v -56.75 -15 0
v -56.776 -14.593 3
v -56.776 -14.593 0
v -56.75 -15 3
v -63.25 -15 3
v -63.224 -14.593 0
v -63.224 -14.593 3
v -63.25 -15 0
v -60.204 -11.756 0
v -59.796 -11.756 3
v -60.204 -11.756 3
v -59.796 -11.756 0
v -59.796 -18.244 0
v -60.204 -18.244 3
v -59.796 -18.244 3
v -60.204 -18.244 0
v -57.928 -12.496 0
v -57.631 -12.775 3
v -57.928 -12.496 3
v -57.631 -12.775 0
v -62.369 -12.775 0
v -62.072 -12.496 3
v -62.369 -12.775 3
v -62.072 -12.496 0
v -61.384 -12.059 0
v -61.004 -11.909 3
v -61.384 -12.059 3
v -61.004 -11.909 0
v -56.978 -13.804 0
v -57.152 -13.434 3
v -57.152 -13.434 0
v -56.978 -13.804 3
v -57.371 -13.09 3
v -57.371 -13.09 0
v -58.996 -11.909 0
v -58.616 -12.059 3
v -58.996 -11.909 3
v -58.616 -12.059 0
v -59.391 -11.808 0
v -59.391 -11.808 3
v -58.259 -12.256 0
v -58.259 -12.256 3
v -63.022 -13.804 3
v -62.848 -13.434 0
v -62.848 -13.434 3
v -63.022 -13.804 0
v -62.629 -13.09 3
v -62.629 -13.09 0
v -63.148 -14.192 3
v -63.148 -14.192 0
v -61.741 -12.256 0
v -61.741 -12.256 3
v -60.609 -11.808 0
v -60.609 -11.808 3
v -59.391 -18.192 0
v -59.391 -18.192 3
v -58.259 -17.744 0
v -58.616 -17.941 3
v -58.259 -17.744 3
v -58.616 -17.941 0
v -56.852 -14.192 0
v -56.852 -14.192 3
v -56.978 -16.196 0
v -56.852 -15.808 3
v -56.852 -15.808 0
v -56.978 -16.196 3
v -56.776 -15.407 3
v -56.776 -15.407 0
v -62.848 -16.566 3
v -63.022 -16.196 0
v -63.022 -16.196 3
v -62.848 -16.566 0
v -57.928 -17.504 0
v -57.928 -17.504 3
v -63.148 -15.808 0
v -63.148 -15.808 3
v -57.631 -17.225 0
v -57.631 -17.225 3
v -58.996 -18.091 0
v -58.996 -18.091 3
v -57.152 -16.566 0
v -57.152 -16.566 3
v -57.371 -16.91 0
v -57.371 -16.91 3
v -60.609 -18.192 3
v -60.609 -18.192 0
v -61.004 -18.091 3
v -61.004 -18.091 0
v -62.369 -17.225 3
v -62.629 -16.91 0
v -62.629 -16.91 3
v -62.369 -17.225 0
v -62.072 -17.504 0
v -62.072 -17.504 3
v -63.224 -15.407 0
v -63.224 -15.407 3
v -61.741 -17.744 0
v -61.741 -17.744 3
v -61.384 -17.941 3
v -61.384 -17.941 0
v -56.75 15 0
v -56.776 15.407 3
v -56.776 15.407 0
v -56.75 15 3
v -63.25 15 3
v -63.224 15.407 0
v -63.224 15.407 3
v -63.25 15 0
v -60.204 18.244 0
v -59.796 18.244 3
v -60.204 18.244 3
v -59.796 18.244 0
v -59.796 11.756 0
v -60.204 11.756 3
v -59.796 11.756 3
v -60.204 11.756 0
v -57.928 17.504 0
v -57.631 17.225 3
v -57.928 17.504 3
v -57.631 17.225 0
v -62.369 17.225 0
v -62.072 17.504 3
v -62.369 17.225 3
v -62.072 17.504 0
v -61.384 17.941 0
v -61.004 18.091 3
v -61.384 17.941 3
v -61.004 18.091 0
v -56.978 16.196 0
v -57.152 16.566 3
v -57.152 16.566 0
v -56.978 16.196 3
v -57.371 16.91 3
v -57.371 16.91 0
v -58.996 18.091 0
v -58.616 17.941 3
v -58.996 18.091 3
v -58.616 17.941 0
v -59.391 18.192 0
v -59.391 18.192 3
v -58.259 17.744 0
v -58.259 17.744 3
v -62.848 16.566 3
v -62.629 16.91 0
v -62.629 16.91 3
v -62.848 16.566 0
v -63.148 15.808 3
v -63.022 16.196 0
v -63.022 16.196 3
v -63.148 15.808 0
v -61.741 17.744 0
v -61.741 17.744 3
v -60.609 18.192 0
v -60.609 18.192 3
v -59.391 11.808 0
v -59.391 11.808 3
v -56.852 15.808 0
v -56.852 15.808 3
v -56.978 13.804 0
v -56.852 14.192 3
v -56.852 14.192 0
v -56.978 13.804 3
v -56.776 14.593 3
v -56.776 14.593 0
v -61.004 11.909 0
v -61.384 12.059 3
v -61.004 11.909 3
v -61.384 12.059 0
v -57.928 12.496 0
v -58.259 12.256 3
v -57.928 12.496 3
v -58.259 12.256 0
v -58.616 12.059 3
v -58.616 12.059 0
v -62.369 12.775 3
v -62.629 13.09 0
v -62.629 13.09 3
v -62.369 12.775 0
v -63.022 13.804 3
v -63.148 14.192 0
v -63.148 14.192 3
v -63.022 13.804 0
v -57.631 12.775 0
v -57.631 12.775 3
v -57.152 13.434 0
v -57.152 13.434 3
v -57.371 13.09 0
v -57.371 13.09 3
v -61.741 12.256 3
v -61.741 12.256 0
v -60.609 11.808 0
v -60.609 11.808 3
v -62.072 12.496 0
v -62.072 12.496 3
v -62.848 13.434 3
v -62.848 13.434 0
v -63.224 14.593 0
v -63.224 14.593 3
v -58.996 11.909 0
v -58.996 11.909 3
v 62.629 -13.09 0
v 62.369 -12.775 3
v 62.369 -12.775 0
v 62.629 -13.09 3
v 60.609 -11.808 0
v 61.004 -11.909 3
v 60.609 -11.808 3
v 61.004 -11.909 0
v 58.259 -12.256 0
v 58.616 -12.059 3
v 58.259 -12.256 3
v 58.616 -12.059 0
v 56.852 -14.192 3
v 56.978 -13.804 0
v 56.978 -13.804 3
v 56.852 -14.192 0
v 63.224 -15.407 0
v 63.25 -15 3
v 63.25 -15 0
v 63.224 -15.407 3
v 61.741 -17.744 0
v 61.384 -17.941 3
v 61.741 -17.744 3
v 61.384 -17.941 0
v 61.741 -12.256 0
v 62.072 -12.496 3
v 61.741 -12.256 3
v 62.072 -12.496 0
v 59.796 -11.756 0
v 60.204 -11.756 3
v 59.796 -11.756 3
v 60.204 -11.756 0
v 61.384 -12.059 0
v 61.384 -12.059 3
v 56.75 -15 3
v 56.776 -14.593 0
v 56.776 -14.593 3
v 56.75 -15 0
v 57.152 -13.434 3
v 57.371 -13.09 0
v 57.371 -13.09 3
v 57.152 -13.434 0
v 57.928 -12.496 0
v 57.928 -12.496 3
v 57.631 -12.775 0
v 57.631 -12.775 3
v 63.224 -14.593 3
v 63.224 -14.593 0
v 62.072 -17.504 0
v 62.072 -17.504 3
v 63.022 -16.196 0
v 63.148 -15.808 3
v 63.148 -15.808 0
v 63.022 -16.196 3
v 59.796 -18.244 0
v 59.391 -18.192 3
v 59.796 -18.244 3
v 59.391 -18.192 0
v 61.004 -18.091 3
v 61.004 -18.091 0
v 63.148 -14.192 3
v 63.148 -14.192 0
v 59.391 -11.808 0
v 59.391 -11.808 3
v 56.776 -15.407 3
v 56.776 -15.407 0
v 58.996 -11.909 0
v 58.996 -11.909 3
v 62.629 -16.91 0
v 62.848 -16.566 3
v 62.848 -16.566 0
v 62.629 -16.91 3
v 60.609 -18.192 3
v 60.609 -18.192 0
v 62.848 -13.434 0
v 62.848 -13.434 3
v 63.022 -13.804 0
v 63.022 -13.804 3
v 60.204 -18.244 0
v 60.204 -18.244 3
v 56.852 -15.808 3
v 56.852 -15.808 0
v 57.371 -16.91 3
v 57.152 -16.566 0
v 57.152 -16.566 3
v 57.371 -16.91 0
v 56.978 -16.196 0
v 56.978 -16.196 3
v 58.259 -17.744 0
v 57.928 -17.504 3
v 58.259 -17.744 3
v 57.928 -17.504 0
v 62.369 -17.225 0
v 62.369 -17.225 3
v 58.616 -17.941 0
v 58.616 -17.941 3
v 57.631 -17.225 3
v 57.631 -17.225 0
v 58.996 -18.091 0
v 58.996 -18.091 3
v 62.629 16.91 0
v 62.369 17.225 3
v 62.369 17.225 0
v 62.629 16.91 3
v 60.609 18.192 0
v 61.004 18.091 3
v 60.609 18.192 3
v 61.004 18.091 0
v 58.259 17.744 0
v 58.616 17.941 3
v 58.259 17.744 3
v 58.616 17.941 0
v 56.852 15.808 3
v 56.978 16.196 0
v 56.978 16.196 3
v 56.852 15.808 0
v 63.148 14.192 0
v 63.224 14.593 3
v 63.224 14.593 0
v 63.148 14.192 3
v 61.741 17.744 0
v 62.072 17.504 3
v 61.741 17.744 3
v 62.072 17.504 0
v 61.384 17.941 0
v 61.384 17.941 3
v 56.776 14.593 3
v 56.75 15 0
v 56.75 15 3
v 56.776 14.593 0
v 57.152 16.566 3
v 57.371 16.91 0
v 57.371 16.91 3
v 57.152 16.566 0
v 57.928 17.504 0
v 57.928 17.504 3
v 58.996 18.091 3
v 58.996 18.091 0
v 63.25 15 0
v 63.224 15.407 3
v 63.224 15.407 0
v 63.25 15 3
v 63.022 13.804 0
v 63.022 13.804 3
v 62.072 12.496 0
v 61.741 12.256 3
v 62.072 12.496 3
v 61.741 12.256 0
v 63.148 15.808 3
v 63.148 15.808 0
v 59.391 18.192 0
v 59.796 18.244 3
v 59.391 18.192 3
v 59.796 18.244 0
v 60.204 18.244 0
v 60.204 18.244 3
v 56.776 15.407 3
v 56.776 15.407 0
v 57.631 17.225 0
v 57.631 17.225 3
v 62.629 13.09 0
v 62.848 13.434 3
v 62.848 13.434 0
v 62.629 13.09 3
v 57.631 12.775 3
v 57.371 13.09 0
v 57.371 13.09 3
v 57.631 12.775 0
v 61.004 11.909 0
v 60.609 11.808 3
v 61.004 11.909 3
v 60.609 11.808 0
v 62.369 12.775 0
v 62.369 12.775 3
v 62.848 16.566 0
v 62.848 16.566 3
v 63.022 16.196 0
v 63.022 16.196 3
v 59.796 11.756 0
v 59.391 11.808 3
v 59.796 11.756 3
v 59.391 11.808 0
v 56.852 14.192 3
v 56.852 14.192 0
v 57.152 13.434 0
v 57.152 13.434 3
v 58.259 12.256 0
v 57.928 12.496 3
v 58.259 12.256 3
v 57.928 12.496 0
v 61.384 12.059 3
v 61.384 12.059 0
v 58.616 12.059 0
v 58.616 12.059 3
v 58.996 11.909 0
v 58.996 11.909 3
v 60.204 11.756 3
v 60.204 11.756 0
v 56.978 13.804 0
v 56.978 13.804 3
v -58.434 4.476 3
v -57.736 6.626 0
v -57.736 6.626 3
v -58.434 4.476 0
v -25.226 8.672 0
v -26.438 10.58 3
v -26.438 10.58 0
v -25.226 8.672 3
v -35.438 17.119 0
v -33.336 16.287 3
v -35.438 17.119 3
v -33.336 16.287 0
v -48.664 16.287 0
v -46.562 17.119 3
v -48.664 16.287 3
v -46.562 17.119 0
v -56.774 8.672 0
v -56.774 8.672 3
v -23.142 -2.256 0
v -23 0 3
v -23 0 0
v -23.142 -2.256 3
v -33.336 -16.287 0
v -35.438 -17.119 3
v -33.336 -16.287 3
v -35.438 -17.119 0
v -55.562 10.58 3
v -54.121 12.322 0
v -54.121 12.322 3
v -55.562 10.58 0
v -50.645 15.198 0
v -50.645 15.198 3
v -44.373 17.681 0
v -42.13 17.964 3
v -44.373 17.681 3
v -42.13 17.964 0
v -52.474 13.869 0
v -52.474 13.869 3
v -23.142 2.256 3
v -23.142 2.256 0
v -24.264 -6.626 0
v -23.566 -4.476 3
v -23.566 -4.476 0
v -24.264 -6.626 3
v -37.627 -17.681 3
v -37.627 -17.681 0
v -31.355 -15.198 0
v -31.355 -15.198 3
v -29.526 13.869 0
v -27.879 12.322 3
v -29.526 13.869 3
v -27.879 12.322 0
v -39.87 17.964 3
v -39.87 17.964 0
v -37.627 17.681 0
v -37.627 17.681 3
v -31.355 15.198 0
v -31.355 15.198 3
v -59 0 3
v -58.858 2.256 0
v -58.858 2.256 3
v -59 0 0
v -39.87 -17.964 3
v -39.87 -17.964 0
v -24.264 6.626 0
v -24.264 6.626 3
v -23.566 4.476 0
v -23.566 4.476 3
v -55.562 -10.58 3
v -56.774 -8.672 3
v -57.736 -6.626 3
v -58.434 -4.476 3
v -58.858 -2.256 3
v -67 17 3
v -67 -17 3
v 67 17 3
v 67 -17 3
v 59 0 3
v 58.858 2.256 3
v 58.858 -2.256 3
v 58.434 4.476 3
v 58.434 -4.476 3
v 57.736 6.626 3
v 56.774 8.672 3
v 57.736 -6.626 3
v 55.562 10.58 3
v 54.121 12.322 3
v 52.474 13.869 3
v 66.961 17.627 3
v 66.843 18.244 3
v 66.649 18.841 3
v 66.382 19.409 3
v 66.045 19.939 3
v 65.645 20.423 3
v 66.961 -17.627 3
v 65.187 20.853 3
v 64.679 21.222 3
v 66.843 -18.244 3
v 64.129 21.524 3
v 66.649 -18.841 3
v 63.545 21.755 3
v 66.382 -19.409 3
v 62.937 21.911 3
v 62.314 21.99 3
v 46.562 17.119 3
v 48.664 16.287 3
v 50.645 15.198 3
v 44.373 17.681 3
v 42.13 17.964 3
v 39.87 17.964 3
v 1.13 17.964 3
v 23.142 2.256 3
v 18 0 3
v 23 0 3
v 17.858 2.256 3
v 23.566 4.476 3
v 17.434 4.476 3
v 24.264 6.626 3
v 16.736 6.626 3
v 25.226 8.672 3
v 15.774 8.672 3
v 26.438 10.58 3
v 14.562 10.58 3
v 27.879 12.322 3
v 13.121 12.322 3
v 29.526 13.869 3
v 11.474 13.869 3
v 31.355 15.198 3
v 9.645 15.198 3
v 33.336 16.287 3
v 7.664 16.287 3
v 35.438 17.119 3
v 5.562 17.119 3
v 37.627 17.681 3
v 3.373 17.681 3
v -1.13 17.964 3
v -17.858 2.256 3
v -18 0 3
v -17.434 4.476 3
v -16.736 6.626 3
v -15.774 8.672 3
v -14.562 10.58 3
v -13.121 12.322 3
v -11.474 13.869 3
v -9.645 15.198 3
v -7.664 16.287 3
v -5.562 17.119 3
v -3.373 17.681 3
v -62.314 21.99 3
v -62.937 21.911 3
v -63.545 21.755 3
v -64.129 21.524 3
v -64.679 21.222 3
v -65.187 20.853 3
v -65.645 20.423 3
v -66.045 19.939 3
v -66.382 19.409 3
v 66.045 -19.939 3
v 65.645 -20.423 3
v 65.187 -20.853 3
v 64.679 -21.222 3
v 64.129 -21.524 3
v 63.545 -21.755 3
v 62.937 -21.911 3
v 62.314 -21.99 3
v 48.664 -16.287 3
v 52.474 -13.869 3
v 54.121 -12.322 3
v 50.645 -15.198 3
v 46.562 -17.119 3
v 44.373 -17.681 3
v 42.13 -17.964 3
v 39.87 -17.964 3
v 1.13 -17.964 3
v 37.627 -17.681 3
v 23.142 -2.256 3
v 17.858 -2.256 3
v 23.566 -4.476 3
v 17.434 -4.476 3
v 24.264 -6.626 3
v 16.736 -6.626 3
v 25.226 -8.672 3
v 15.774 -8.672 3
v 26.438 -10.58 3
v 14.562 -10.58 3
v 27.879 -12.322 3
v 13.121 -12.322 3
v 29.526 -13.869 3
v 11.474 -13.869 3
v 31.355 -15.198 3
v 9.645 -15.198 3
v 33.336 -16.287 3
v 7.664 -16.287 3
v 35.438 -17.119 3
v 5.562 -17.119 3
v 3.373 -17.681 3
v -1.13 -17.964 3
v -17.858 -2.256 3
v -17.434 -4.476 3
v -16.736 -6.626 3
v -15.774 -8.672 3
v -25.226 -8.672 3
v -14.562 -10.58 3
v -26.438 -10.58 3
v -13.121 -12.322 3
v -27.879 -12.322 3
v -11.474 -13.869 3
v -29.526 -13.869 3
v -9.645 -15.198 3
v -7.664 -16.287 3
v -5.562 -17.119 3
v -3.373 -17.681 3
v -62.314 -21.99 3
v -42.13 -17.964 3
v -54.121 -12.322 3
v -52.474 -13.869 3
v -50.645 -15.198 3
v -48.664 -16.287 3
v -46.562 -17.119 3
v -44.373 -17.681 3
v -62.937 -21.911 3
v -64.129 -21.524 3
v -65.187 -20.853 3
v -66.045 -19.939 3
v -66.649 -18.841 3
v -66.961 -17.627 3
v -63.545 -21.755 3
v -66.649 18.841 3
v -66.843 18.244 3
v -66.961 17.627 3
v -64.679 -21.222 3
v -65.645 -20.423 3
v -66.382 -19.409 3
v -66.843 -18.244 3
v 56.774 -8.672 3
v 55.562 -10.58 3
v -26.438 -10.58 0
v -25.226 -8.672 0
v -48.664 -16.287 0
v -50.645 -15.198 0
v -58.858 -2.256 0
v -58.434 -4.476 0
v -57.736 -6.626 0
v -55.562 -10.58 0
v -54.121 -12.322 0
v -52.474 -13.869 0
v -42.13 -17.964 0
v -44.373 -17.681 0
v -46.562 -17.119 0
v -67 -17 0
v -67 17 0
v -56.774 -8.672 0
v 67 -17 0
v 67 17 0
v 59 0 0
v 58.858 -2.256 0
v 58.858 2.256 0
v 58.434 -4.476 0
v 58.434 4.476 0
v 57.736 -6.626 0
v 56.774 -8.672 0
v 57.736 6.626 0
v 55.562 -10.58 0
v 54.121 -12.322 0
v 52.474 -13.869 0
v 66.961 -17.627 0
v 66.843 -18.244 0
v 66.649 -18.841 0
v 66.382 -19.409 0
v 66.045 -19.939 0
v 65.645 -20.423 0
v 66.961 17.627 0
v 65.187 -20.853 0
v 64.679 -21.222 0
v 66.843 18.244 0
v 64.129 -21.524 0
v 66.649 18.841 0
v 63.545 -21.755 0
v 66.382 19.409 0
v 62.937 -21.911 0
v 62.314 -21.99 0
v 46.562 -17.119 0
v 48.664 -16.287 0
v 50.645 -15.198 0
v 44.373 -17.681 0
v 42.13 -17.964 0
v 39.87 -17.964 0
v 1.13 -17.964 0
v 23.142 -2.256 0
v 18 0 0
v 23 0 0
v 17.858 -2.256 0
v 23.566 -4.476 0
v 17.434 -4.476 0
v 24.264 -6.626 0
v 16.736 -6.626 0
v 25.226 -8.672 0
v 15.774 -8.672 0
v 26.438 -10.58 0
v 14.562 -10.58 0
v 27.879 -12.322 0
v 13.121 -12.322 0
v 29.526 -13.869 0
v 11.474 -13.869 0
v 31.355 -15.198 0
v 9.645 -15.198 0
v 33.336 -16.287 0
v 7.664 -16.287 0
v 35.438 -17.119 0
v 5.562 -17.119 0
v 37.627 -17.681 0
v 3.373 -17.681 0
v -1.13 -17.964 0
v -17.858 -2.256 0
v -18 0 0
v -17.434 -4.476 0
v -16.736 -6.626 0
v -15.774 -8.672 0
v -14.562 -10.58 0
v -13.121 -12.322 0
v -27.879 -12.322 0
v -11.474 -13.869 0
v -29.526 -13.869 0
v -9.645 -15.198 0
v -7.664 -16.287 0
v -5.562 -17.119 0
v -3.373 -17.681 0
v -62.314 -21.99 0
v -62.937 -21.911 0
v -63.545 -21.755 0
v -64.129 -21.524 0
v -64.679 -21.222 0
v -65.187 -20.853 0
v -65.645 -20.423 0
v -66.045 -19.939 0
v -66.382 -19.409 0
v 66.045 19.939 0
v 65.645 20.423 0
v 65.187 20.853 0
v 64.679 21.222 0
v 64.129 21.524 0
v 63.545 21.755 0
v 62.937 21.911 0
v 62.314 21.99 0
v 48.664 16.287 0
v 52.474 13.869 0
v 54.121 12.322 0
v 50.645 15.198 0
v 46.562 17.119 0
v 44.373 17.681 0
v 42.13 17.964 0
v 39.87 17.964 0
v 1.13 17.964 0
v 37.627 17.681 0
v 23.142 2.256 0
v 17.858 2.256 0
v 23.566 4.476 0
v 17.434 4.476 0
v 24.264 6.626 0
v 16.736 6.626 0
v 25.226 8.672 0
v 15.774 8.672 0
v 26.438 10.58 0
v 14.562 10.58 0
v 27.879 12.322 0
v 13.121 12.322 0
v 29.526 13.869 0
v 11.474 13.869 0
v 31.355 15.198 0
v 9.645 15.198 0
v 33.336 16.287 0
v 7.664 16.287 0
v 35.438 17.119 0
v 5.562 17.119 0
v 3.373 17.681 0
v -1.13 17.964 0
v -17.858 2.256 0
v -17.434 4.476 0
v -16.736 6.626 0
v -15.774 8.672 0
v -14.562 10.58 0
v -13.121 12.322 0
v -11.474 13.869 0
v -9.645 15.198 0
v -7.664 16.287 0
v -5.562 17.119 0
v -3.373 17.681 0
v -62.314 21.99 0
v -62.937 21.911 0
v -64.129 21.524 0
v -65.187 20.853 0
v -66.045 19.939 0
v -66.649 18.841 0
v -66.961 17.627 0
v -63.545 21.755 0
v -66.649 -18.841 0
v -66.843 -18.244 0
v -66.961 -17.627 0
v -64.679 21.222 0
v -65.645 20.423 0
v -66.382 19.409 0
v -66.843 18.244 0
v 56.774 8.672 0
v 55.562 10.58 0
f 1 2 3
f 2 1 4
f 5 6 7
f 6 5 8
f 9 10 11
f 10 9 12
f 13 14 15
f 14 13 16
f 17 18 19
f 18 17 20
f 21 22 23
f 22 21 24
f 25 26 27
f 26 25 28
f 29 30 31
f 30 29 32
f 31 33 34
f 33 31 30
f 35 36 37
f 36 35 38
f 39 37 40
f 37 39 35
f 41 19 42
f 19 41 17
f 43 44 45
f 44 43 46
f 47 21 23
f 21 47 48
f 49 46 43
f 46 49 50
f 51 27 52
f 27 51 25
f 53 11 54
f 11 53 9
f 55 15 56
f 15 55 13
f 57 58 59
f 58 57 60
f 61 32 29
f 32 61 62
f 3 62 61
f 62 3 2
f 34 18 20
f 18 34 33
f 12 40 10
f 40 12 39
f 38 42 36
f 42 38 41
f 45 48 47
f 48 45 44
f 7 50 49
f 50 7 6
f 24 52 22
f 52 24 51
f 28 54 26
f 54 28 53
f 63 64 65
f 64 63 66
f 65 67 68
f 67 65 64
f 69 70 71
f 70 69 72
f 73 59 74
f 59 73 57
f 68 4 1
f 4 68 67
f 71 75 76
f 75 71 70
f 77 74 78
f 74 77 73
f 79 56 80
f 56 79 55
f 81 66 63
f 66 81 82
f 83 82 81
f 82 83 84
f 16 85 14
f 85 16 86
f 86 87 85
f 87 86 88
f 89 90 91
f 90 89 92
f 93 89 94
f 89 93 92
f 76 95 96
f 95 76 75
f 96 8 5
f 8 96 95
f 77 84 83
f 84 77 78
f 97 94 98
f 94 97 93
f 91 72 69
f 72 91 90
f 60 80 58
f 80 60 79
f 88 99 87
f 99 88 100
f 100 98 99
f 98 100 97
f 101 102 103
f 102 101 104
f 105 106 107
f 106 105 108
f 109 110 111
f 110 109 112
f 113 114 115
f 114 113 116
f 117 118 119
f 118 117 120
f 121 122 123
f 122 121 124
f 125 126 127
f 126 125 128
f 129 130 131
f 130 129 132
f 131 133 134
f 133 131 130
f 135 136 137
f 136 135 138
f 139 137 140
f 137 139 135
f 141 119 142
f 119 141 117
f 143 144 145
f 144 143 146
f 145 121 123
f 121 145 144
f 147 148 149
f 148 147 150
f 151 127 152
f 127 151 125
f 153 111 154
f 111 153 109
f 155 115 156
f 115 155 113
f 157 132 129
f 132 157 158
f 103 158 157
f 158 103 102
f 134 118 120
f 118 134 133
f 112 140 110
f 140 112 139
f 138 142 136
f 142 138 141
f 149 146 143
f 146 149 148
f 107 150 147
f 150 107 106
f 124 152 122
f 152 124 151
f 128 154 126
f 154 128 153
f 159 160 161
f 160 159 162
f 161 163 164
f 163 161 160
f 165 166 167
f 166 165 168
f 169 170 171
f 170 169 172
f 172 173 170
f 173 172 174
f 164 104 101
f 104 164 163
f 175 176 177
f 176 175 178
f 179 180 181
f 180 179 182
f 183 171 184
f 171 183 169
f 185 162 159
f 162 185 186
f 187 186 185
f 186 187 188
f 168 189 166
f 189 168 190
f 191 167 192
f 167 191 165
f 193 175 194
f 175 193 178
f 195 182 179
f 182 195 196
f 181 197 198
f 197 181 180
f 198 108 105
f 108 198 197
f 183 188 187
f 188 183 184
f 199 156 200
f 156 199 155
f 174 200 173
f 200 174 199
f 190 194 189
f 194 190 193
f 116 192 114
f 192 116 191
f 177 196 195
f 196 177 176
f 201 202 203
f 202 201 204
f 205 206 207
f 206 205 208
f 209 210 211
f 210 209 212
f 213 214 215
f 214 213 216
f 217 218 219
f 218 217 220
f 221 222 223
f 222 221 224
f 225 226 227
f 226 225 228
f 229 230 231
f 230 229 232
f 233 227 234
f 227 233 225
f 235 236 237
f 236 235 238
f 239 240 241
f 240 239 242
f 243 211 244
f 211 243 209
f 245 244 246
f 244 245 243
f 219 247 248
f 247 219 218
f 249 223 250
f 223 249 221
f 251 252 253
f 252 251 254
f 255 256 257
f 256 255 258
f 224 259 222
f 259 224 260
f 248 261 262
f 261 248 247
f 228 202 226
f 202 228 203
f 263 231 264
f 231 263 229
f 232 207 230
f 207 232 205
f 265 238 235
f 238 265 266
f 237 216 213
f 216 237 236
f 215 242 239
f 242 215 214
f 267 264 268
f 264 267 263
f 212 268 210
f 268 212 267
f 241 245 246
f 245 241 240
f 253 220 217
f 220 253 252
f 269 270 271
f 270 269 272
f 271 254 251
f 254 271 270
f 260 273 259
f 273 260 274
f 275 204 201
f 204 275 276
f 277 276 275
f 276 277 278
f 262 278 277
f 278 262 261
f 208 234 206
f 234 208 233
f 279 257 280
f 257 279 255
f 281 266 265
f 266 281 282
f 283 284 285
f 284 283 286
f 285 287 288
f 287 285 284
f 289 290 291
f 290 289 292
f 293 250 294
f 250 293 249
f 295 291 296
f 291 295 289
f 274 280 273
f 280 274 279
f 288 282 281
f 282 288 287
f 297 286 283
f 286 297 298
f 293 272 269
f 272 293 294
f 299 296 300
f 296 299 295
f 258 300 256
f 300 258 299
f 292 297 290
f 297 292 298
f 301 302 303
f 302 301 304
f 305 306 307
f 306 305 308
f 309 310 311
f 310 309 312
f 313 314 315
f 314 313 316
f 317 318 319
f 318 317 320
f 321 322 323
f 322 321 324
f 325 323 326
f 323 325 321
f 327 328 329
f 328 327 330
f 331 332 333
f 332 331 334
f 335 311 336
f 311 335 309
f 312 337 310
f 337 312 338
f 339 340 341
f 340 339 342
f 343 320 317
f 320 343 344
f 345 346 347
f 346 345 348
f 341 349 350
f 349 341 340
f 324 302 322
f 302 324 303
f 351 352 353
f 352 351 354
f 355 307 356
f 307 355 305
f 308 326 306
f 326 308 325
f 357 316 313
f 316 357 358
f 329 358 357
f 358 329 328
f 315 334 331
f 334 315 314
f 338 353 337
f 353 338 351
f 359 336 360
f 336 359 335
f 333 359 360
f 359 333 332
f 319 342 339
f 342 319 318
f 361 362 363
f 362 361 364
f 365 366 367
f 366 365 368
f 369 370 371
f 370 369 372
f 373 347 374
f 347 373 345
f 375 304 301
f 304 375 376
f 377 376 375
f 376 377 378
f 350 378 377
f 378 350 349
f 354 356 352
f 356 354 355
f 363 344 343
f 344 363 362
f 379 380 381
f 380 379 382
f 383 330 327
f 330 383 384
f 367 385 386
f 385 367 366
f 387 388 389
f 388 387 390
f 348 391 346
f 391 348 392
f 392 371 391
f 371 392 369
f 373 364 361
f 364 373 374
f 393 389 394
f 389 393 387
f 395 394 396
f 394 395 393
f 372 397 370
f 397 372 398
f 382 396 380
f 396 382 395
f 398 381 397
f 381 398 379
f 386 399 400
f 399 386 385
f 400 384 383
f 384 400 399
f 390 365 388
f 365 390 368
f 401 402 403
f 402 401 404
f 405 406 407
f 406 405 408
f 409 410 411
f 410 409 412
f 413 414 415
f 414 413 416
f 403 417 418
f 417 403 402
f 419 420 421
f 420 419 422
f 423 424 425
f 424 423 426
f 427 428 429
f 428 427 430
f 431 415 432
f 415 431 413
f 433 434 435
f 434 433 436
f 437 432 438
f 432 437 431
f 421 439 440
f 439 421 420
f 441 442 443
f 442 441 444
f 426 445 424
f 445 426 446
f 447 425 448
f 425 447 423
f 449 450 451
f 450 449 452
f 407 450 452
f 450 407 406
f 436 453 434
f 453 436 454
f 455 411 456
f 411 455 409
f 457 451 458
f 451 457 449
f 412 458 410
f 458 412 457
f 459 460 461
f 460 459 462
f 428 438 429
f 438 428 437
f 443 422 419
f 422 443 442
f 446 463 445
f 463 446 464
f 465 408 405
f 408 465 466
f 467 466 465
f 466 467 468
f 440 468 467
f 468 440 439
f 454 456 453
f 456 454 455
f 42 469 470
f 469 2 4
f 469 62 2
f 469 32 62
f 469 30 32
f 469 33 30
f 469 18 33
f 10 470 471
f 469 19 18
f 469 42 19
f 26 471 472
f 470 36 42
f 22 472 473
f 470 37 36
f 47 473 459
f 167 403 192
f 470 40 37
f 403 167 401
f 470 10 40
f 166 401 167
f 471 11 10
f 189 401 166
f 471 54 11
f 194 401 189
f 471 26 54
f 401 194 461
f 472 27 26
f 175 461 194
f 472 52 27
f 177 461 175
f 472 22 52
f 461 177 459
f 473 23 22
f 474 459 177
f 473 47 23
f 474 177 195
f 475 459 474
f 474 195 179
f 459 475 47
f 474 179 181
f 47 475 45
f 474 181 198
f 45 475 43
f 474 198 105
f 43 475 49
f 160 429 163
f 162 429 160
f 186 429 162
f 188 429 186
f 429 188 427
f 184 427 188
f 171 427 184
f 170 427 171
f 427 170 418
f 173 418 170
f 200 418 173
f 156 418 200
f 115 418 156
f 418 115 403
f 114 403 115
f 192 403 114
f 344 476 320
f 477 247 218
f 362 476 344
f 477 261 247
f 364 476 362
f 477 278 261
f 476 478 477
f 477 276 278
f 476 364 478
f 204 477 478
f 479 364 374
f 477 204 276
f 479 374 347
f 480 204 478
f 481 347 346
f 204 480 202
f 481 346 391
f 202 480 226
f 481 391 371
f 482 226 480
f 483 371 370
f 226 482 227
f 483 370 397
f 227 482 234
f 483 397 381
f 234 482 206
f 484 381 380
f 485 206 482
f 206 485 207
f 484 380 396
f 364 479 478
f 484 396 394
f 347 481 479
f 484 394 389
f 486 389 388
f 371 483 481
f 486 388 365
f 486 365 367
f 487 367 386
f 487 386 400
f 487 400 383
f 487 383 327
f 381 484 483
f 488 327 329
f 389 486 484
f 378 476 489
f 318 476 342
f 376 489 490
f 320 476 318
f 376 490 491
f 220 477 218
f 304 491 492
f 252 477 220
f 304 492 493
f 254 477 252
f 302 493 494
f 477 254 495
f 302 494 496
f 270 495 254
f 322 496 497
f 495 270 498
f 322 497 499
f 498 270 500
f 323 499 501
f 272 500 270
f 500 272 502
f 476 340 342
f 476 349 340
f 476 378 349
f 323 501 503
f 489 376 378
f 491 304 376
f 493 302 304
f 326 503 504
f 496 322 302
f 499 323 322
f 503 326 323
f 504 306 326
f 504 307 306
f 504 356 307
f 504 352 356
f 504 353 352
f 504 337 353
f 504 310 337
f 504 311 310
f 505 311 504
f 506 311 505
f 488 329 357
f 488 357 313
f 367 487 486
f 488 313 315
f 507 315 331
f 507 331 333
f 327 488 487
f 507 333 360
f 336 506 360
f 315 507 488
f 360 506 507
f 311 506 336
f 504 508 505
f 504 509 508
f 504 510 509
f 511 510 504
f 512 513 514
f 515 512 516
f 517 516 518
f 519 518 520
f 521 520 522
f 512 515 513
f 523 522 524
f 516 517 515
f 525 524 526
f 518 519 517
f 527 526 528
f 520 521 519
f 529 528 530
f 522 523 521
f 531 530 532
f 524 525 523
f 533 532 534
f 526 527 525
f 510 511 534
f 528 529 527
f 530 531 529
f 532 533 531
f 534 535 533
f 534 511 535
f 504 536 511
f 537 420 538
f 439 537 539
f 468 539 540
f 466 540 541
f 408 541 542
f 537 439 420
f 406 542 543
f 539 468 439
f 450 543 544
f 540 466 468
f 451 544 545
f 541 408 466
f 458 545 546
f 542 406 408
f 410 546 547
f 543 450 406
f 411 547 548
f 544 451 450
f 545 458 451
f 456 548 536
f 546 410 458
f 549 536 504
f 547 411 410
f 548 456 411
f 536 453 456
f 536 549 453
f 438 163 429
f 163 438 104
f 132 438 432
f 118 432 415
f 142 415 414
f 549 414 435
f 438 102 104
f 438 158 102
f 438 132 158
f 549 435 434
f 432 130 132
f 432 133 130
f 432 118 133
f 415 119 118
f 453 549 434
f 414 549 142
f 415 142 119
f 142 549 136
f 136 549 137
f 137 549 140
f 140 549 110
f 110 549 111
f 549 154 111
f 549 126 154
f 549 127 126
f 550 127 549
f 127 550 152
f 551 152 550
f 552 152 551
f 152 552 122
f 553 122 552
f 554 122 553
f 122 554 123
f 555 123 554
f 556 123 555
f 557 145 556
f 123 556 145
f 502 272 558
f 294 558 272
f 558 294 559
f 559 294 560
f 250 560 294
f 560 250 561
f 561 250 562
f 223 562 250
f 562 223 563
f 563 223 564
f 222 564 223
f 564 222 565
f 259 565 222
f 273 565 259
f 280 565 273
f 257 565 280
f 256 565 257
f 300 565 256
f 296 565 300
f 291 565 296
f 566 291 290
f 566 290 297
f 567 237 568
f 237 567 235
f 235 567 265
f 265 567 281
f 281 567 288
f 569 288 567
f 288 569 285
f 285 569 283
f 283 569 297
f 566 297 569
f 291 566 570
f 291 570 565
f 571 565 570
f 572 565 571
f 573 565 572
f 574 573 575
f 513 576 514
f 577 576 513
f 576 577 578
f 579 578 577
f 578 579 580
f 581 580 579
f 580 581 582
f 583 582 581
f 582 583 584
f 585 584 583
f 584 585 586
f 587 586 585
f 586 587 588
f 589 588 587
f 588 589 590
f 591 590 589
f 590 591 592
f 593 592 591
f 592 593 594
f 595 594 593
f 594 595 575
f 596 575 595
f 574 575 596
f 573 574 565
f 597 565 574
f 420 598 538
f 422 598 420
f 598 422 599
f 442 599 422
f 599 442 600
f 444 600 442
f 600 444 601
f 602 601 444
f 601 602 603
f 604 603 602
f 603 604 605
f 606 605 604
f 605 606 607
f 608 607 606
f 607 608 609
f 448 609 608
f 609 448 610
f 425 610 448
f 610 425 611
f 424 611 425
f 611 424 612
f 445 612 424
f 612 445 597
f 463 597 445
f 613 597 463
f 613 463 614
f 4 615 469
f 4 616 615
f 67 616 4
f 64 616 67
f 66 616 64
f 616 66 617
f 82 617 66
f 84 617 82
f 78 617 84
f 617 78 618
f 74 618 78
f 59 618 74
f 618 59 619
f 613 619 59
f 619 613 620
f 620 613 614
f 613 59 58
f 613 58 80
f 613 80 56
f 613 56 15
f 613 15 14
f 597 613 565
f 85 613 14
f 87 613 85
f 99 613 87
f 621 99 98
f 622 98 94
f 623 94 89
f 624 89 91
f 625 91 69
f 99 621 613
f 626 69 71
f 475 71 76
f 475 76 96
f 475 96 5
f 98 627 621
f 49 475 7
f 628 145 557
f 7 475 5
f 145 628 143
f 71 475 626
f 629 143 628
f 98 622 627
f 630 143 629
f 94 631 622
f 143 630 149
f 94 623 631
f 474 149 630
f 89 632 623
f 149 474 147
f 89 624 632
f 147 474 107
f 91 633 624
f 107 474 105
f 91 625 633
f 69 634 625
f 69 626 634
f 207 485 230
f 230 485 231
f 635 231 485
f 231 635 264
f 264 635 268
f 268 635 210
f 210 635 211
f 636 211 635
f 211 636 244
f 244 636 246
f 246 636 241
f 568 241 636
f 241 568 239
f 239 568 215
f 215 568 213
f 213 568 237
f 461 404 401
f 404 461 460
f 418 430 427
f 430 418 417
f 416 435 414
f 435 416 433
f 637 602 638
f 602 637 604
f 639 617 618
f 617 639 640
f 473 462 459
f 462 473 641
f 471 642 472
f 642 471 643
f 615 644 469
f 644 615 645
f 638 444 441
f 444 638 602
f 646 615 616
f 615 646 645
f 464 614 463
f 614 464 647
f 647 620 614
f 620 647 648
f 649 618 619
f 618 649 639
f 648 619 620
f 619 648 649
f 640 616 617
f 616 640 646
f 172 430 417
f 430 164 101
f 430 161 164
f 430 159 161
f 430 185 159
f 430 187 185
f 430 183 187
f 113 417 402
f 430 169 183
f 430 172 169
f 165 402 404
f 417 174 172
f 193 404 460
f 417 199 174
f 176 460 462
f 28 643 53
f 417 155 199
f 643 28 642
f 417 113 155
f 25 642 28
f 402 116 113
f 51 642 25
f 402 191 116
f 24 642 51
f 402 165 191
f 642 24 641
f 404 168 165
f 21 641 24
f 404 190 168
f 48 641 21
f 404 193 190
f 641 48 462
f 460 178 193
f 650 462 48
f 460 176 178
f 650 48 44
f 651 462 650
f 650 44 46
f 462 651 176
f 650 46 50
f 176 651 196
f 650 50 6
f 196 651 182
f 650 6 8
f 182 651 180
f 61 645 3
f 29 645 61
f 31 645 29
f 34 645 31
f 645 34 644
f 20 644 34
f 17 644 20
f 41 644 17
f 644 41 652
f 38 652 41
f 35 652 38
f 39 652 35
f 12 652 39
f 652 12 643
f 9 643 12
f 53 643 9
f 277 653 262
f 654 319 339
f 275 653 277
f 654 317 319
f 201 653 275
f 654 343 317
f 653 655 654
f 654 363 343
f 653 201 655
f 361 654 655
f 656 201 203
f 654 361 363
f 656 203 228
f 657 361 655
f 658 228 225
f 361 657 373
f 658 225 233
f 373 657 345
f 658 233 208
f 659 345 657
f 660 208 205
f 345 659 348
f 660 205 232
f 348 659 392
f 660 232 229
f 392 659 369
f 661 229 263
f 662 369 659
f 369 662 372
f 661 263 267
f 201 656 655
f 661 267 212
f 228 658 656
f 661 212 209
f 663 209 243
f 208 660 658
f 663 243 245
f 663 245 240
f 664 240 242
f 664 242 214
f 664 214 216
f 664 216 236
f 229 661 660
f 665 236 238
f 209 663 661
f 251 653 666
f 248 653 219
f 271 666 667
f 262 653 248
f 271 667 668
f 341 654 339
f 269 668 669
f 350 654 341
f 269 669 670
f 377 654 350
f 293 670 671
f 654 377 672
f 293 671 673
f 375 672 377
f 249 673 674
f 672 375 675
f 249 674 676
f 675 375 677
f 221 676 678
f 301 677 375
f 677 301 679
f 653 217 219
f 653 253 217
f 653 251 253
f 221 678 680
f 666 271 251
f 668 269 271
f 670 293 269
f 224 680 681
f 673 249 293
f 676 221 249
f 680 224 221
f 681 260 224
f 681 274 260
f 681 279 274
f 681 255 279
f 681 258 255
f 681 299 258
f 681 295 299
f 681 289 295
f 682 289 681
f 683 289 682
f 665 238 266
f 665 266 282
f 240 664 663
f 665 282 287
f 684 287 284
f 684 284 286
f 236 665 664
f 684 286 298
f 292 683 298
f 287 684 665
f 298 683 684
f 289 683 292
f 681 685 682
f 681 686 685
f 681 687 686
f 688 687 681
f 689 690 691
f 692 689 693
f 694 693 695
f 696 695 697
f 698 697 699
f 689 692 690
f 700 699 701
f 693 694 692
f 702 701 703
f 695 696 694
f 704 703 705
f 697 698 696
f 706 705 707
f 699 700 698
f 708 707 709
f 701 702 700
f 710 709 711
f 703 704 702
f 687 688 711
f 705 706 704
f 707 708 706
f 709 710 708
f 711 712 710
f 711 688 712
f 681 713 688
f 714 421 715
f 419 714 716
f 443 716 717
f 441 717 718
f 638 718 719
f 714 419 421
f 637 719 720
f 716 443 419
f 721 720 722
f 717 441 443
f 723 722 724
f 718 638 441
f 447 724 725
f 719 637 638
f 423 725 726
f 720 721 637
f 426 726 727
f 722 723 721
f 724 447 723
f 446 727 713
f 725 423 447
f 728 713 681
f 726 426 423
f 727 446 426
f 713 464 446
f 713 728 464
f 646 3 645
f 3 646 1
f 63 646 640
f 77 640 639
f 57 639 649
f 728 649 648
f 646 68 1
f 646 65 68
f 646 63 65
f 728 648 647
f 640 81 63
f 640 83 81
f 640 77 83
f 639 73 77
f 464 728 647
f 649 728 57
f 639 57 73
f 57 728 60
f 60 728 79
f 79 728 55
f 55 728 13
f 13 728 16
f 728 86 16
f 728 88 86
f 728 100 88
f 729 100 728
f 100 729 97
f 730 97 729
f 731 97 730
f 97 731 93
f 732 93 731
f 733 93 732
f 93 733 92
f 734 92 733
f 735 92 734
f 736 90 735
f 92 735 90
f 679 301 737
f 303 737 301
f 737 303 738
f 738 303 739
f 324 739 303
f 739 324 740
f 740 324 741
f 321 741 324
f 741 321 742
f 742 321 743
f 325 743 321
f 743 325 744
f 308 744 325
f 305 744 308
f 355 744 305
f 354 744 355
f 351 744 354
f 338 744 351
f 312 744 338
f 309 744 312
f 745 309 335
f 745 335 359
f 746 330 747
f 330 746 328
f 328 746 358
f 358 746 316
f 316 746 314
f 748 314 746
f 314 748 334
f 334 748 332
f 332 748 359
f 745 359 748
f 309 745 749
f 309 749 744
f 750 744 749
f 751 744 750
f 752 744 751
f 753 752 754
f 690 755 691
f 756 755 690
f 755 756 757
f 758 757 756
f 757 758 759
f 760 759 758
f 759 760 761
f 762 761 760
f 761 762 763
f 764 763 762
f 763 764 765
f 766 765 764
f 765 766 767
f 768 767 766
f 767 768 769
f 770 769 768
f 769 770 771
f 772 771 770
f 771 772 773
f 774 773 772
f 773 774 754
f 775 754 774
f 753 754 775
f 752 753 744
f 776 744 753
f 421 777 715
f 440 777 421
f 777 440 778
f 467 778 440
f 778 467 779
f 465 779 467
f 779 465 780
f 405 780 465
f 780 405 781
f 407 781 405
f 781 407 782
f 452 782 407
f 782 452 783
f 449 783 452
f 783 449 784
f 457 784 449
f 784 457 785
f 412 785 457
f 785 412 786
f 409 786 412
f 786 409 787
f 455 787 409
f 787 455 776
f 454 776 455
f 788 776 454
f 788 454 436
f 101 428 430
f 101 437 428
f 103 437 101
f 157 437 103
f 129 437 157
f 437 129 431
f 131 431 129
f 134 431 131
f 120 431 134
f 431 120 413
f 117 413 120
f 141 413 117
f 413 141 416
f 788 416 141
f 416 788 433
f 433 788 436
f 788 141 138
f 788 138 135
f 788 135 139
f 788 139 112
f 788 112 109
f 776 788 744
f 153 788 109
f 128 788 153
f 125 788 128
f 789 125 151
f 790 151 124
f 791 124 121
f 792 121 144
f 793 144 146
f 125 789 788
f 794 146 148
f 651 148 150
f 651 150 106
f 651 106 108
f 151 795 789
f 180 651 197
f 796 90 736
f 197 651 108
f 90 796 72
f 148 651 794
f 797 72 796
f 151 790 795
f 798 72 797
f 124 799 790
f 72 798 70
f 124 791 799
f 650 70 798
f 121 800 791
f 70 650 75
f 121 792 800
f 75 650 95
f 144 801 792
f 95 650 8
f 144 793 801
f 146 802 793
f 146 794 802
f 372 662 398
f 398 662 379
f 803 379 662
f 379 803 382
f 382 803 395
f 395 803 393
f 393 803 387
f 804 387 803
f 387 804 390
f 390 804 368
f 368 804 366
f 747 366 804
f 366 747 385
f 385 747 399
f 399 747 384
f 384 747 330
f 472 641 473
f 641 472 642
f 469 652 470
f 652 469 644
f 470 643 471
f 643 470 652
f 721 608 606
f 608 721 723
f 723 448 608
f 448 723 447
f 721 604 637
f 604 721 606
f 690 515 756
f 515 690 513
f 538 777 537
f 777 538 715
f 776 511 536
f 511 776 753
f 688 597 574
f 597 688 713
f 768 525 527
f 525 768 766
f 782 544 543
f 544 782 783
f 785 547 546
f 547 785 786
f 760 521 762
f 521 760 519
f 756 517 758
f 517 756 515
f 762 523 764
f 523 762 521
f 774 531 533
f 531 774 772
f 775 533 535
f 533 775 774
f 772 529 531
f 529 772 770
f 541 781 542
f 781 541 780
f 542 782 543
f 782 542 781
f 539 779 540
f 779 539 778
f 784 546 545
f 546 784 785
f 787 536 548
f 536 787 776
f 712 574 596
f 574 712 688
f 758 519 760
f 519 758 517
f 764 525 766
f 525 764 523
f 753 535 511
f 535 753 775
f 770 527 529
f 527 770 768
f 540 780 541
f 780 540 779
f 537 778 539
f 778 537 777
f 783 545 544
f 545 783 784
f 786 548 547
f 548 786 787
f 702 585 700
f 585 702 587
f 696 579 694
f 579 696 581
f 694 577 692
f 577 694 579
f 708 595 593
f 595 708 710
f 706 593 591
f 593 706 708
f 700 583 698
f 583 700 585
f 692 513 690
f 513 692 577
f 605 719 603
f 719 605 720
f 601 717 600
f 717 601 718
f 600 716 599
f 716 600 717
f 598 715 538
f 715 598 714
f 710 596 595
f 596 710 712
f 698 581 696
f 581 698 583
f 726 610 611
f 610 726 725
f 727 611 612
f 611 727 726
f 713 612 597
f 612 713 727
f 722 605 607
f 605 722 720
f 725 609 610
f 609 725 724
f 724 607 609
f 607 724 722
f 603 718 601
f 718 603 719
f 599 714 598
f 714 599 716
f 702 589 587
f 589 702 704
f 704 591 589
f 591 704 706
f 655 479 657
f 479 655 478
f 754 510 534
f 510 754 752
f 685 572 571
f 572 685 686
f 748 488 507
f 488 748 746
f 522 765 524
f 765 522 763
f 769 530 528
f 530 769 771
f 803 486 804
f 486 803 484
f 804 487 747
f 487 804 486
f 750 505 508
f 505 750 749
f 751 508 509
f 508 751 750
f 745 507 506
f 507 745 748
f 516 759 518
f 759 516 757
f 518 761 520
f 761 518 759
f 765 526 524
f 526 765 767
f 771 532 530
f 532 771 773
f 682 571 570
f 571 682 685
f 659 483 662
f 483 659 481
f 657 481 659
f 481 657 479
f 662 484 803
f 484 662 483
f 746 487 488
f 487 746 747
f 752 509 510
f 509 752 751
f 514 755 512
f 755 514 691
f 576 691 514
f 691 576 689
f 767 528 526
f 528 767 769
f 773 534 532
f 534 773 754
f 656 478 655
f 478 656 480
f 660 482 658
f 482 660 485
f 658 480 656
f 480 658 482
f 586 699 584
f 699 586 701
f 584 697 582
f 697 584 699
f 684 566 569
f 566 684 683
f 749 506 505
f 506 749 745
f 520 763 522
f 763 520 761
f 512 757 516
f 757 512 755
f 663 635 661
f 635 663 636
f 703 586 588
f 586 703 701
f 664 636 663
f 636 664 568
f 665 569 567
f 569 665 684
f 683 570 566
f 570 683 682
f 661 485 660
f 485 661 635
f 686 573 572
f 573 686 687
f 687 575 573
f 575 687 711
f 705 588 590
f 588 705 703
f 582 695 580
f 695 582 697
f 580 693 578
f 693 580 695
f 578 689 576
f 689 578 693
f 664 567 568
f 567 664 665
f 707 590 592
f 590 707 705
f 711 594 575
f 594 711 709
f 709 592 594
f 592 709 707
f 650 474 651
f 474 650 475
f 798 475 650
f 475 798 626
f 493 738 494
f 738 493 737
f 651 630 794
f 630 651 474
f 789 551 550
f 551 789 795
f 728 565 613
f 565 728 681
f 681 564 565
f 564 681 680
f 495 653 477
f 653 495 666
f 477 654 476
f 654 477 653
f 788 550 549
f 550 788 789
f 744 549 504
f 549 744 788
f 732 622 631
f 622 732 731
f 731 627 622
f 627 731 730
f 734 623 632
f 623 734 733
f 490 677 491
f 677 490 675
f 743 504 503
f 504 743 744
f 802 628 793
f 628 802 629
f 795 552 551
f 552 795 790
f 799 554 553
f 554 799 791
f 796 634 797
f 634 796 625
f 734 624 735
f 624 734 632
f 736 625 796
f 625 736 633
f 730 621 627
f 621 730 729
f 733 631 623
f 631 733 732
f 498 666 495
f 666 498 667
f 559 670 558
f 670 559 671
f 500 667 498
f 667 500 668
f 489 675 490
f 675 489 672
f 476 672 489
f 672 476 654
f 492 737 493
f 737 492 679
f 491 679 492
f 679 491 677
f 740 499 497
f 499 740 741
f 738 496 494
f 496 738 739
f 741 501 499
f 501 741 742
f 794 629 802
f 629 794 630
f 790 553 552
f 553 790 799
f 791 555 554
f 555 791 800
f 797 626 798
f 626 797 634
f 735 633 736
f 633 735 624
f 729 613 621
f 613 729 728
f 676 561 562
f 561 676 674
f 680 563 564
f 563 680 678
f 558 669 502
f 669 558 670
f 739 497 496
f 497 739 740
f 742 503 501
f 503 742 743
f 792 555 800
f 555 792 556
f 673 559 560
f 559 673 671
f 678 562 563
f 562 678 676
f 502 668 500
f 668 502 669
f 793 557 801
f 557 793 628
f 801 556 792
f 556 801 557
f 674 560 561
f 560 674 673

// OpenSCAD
$fn = 50;


difference() {
	union() {
		hull() {
			translate(v = [-62.0000000000, 17.0000000000, 0]) {
				cylinder(h = 3, r = 5);
			}
			translate(v = [62.0000000000, 17.0000000000, 0]) {
				cylinder(h = 3, r = 5);
			}
			translate(v = [-62.0000000000, -17.0000000000, 0]) {
				cylinder(h = 3, r = 5);
			}
			translate(v = [62.0000000000, -17.0000000000, 0]) {
				cylinder(h = 3, r = 5);
			}
		}
	}
	union() {
		#translate(v = [-60.0000000000, -15.0000000000, -100.0000000000]) {
			cylinder(h = 200, r = 3.2500000000);
		}
		#translate(v = [-60.0000000000, 15.0000000000, -100.0000000000]) {
			cylinder(h = 200, r = 3.2500000000);
		}
		#translate(v = [60.0000000000, -15.0000000000, -100.0000000000]) {
			cylinder(h = 200, r = 3.2500000000);
		}
		#translate(v = [60.0000000000, 15.0000000000, -100.0000000000]) {
			cylinder(h = 200, r = 3.2500000000);
		}
		#translate(v = [-41.0000000000, 0, 0]) {
			cylinder(h = 3, r = 18.0000000000);
		}
		#cylinder(h = 3, r = 18.0000000000);
		#translate(v = [41.0000000000, 0, 0]) {
			cylinder(h = 3, r = 18.0000000000);
		}
	}
}
